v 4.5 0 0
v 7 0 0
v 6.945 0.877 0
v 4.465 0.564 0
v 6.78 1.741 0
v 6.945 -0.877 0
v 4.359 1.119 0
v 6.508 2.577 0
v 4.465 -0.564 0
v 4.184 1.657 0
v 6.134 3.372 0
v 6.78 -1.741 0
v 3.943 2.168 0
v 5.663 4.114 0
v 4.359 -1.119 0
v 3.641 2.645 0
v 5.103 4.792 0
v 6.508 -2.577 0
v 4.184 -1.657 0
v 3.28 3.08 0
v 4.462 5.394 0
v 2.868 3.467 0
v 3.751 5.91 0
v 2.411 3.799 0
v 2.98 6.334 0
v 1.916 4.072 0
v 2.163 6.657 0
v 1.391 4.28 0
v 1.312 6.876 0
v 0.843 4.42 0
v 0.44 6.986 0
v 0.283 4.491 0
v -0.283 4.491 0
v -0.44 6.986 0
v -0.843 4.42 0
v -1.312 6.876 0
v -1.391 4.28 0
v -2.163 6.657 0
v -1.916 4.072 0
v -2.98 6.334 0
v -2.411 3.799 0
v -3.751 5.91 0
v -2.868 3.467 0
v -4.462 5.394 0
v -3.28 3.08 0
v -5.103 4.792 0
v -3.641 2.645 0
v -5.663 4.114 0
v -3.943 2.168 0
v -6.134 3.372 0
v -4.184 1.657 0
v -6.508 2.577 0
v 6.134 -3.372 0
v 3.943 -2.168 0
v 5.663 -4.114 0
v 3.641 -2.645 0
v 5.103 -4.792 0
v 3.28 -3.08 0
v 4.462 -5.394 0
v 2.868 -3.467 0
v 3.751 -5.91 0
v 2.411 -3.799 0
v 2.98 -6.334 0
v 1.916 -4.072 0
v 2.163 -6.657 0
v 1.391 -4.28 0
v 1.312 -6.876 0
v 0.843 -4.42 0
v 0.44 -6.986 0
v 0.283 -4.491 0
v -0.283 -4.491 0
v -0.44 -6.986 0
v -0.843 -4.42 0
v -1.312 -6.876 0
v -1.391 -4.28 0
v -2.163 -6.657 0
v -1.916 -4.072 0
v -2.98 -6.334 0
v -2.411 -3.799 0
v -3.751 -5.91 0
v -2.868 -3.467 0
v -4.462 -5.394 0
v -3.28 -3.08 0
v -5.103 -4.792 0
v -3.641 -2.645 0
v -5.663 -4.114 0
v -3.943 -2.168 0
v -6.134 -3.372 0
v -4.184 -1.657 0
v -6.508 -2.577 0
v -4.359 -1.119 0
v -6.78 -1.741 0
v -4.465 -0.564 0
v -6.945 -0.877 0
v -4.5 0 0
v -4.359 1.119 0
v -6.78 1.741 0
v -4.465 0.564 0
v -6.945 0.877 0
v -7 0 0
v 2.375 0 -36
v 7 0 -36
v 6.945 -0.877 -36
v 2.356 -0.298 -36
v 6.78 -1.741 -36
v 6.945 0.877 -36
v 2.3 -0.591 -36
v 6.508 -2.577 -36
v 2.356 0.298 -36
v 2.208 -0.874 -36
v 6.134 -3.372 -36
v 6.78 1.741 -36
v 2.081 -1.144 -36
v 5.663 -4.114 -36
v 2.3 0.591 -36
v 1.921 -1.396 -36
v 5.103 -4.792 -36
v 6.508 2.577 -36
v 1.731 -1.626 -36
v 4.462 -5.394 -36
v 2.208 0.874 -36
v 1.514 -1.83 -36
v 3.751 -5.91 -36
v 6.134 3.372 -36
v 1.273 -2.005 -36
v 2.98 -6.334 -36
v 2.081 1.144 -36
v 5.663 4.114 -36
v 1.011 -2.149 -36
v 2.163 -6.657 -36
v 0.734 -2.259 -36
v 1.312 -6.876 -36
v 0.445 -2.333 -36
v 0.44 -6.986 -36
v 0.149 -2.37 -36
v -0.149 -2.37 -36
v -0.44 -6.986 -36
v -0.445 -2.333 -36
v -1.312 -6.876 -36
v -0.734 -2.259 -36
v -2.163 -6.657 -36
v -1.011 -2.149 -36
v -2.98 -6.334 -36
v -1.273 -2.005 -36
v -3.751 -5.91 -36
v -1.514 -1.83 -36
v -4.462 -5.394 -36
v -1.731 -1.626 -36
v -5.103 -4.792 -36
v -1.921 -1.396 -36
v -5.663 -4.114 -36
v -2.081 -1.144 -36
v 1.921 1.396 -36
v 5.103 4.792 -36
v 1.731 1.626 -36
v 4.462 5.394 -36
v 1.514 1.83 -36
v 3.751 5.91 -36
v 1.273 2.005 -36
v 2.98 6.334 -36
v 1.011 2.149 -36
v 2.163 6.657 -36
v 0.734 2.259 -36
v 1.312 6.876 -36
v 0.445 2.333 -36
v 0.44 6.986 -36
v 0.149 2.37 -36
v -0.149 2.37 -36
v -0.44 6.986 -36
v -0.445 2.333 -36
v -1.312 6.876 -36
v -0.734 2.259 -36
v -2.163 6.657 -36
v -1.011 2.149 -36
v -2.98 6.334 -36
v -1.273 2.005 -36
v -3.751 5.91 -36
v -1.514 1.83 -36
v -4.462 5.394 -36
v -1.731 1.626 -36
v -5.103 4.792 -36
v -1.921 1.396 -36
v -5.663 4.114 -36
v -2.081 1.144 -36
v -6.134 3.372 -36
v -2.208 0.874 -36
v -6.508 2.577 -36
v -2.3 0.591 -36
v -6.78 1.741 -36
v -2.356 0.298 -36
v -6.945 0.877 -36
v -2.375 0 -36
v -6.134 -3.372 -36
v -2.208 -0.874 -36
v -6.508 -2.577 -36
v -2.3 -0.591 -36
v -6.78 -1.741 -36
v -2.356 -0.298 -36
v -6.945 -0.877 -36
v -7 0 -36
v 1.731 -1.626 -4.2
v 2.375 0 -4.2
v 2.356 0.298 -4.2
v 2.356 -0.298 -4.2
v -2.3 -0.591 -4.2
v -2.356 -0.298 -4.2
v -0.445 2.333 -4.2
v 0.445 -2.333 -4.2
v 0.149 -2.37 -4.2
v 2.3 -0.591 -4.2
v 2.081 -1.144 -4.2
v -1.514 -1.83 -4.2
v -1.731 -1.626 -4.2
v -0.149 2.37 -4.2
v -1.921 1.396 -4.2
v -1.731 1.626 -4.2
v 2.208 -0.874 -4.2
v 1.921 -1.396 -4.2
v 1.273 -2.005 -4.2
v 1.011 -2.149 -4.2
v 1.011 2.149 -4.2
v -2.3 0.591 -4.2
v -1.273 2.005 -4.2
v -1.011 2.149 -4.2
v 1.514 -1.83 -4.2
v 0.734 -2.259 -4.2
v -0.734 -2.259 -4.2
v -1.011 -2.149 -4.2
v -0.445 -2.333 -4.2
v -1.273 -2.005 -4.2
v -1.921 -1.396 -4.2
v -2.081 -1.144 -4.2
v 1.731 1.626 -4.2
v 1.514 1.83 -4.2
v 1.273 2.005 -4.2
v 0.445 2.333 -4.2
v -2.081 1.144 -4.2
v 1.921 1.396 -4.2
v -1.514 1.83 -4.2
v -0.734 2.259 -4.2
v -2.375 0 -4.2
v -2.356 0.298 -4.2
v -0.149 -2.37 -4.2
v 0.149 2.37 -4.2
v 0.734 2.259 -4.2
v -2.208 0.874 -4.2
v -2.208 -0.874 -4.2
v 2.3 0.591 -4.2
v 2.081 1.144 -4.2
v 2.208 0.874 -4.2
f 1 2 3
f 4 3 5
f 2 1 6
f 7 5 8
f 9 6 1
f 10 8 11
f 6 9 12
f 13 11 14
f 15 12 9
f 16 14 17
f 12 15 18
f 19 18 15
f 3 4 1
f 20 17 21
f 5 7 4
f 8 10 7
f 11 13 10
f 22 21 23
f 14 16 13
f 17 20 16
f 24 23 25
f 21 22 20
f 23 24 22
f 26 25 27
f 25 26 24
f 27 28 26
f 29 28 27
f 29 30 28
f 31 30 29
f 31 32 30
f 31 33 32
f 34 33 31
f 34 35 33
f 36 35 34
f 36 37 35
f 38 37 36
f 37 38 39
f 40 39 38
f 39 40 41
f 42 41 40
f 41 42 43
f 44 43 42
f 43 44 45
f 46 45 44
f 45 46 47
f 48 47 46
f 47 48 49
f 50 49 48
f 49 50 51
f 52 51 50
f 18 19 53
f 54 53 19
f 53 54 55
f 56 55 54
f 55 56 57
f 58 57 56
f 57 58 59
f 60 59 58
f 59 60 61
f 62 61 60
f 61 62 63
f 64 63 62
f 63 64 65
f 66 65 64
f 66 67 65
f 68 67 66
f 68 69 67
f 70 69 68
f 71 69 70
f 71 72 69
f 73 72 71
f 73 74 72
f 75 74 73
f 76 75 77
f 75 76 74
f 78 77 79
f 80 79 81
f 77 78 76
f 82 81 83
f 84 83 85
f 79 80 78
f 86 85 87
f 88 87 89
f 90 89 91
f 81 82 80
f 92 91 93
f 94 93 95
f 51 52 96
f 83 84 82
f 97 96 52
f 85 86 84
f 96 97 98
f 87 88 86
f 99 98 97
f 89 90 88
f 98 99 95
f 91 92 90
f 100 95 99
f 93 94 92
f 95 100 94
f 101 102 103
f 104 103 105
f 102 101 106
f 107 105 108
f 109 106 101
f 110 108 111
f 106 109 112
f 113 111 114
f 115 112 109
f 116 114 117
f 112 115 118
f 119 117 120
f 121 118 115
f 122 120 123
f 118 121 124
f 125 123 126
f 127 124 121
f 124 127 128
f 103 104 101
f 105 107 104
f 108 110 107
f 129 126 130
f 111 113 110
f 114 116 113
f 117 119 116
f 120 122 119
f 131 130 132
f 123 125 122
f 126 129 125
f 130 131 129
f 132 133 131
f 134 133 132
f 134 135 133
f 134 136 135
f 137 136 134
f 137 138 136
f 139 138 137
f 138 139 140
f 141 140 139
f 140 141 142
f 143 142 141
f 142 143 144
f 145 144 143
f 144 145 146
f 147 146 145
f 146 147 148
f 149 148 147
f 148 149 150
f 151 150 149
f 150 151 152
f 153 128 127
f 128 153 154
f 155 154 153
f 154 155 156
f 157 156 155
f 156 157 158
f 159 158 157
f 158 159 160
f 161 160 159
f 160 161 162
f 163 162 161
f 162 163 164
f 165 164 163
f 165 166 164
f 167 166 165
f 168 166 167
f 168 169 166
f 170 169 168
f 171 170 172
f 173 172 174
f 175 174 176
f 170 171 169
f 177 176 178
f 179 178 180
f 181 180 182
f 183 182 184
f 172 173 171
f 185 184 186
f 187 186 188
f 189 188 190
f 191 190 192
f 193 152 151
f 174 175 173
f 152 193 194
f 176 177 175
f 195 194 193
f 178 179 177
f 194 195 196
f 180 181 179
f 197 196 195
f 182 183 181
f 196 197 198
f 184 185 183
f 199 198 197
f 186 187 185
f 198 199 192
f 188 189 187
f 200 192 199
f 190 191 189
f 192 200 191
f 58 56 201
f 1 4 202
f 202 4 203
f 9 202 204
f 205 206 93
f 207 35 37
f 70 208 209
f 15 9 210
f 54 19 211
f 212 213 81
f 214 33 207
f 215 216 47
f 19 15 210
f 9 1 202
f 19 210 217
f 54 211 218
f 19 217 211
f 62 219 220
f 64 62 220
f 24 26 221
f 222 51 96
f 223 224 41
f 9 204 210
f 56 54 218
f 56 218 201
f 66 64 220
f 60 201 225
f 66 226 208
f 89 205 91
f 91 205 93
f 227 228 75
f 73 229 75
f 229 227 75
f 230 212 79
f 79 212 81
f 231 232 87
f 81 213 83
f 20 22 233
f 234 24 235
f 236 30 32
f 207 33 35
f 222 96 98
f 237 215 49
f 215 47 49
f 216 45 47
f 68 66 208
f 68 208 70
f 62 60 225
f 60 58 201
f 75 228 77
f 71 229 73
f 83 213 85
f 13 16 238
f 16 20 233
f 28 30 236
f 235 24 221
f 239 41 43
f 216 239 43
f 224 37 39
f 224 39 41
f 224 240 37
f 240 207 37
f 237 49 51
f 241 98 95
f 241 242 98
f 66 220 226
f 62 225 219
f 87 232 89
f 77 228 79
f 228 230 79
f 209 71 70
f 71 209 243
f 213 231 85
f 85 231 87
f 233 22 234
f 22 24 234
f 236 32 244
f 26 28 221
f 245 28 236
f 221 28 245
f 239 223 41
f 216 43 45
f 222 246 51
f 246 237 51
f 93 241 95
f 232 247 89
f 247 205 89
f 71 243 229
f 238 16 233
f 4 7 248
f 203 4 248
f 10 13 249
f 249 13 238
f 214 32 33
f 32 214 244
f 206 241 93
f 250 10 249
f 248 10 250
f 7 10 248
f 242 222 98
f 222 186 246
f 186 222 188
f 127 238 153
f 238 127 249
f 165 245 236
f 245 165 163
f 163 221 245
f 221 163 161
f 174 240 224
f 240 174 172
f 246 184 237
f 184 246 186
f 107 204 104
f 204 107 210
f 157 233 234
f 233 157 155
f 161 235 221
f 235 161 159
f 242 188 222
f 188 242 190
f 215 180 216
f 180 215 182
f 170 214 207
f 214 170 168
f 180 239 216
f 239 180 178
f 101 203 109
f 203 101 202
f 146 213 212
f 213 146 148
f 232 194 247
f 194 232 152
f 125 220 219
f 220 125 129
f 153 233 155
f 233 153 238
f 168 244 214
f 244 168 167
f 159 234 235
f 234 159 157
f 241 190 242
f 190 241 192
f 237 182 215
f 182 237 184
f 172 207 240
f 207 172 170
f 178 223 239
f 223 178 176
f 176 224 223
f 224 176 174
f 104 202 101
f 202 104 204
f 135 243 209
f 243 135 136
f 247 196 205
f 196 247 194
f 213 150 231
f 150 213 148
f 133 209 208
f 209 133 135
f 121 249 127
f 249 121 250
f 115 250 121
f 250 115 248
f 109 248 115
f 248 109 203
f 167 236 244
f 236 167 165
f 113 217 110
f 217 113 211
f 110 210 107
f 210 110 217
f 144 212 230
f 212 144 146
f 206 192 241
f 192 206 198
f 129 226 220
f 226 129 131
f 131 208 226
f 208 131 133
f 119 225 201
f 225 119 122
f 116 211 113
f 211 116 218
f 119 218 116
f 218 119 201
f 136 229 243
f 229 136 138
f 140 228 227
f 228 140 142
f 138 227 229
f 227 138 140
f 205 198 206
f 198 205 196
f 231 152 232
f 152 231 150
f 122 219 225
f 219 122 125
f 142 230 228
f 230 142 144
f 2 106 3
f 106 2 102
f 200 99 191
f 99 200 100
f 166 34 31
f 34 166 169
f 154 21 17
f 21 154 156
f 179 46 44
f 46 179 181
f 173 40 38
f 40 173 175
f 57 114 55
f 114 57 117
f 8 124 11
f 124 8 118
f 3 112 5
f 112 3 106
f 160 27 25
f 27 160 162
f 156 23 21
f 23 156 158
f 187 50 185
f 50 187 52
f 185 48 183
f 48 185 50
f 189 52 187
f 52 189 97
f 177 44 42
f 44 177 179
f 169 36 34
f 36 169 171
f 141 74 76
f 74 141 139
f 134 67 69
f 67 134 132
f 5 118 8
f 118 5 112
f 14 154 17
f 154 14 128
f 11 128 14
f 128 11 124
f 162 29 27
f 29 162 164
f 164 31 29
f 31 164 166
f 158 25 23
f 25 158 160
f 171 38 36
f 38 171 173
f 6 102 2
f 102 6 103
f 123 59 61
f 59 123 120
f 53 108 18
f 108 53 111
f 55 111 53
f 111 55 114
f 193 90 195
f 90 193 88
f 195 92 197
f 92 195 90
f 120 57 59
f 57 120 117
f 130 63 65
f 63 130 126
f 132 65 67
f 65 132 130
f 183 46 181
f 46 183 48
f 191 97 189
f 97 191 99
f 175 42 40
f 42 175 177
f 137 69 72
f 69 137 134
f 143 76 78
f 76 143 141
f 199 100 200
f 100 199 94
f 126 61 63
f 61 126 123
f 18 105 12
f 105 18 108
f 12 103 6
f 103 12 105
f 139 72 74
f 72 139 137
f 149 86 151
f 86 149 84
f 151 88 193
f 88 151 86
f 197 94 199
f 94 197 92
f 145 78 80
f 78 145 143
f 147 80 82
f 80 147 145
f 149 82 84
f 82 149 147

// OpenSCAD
$fn = 50;


difference() {
	union() {
		translate(v = [0, 0, -36.0000000000]) {
			cylinder(h = 36, r = 7.0000000000);
		}
		cylinder(h = 0, r = 13.0000000000);
	}
	union() {
		translate(v = [0, 0, 0]) {
			rotate(a = [0, 0, 0]) {
				difference() {
					union() {
						#translate(v = [0, 0, -36.0000000000]) {
							cylinder(h = 36, r = 2.2500000000);
						}
						#translate(v = [0, 0, -4.2000000000]) {
							cylinder(h = 4.2000000000, r1 = 2.3750000000, r2 = 4.5000000000);
						}
						#translate(v = [0, 0, -36.0000000000]) {
							cylinder(h = 36, r = 2.3750000000);
						}
						#translate(v = [0, 0, -36.0000000000]) {
							cylinder(h = 36, r = 2.2500000000);
						}
					}
					union();
				}
			}
		}
	}
}
